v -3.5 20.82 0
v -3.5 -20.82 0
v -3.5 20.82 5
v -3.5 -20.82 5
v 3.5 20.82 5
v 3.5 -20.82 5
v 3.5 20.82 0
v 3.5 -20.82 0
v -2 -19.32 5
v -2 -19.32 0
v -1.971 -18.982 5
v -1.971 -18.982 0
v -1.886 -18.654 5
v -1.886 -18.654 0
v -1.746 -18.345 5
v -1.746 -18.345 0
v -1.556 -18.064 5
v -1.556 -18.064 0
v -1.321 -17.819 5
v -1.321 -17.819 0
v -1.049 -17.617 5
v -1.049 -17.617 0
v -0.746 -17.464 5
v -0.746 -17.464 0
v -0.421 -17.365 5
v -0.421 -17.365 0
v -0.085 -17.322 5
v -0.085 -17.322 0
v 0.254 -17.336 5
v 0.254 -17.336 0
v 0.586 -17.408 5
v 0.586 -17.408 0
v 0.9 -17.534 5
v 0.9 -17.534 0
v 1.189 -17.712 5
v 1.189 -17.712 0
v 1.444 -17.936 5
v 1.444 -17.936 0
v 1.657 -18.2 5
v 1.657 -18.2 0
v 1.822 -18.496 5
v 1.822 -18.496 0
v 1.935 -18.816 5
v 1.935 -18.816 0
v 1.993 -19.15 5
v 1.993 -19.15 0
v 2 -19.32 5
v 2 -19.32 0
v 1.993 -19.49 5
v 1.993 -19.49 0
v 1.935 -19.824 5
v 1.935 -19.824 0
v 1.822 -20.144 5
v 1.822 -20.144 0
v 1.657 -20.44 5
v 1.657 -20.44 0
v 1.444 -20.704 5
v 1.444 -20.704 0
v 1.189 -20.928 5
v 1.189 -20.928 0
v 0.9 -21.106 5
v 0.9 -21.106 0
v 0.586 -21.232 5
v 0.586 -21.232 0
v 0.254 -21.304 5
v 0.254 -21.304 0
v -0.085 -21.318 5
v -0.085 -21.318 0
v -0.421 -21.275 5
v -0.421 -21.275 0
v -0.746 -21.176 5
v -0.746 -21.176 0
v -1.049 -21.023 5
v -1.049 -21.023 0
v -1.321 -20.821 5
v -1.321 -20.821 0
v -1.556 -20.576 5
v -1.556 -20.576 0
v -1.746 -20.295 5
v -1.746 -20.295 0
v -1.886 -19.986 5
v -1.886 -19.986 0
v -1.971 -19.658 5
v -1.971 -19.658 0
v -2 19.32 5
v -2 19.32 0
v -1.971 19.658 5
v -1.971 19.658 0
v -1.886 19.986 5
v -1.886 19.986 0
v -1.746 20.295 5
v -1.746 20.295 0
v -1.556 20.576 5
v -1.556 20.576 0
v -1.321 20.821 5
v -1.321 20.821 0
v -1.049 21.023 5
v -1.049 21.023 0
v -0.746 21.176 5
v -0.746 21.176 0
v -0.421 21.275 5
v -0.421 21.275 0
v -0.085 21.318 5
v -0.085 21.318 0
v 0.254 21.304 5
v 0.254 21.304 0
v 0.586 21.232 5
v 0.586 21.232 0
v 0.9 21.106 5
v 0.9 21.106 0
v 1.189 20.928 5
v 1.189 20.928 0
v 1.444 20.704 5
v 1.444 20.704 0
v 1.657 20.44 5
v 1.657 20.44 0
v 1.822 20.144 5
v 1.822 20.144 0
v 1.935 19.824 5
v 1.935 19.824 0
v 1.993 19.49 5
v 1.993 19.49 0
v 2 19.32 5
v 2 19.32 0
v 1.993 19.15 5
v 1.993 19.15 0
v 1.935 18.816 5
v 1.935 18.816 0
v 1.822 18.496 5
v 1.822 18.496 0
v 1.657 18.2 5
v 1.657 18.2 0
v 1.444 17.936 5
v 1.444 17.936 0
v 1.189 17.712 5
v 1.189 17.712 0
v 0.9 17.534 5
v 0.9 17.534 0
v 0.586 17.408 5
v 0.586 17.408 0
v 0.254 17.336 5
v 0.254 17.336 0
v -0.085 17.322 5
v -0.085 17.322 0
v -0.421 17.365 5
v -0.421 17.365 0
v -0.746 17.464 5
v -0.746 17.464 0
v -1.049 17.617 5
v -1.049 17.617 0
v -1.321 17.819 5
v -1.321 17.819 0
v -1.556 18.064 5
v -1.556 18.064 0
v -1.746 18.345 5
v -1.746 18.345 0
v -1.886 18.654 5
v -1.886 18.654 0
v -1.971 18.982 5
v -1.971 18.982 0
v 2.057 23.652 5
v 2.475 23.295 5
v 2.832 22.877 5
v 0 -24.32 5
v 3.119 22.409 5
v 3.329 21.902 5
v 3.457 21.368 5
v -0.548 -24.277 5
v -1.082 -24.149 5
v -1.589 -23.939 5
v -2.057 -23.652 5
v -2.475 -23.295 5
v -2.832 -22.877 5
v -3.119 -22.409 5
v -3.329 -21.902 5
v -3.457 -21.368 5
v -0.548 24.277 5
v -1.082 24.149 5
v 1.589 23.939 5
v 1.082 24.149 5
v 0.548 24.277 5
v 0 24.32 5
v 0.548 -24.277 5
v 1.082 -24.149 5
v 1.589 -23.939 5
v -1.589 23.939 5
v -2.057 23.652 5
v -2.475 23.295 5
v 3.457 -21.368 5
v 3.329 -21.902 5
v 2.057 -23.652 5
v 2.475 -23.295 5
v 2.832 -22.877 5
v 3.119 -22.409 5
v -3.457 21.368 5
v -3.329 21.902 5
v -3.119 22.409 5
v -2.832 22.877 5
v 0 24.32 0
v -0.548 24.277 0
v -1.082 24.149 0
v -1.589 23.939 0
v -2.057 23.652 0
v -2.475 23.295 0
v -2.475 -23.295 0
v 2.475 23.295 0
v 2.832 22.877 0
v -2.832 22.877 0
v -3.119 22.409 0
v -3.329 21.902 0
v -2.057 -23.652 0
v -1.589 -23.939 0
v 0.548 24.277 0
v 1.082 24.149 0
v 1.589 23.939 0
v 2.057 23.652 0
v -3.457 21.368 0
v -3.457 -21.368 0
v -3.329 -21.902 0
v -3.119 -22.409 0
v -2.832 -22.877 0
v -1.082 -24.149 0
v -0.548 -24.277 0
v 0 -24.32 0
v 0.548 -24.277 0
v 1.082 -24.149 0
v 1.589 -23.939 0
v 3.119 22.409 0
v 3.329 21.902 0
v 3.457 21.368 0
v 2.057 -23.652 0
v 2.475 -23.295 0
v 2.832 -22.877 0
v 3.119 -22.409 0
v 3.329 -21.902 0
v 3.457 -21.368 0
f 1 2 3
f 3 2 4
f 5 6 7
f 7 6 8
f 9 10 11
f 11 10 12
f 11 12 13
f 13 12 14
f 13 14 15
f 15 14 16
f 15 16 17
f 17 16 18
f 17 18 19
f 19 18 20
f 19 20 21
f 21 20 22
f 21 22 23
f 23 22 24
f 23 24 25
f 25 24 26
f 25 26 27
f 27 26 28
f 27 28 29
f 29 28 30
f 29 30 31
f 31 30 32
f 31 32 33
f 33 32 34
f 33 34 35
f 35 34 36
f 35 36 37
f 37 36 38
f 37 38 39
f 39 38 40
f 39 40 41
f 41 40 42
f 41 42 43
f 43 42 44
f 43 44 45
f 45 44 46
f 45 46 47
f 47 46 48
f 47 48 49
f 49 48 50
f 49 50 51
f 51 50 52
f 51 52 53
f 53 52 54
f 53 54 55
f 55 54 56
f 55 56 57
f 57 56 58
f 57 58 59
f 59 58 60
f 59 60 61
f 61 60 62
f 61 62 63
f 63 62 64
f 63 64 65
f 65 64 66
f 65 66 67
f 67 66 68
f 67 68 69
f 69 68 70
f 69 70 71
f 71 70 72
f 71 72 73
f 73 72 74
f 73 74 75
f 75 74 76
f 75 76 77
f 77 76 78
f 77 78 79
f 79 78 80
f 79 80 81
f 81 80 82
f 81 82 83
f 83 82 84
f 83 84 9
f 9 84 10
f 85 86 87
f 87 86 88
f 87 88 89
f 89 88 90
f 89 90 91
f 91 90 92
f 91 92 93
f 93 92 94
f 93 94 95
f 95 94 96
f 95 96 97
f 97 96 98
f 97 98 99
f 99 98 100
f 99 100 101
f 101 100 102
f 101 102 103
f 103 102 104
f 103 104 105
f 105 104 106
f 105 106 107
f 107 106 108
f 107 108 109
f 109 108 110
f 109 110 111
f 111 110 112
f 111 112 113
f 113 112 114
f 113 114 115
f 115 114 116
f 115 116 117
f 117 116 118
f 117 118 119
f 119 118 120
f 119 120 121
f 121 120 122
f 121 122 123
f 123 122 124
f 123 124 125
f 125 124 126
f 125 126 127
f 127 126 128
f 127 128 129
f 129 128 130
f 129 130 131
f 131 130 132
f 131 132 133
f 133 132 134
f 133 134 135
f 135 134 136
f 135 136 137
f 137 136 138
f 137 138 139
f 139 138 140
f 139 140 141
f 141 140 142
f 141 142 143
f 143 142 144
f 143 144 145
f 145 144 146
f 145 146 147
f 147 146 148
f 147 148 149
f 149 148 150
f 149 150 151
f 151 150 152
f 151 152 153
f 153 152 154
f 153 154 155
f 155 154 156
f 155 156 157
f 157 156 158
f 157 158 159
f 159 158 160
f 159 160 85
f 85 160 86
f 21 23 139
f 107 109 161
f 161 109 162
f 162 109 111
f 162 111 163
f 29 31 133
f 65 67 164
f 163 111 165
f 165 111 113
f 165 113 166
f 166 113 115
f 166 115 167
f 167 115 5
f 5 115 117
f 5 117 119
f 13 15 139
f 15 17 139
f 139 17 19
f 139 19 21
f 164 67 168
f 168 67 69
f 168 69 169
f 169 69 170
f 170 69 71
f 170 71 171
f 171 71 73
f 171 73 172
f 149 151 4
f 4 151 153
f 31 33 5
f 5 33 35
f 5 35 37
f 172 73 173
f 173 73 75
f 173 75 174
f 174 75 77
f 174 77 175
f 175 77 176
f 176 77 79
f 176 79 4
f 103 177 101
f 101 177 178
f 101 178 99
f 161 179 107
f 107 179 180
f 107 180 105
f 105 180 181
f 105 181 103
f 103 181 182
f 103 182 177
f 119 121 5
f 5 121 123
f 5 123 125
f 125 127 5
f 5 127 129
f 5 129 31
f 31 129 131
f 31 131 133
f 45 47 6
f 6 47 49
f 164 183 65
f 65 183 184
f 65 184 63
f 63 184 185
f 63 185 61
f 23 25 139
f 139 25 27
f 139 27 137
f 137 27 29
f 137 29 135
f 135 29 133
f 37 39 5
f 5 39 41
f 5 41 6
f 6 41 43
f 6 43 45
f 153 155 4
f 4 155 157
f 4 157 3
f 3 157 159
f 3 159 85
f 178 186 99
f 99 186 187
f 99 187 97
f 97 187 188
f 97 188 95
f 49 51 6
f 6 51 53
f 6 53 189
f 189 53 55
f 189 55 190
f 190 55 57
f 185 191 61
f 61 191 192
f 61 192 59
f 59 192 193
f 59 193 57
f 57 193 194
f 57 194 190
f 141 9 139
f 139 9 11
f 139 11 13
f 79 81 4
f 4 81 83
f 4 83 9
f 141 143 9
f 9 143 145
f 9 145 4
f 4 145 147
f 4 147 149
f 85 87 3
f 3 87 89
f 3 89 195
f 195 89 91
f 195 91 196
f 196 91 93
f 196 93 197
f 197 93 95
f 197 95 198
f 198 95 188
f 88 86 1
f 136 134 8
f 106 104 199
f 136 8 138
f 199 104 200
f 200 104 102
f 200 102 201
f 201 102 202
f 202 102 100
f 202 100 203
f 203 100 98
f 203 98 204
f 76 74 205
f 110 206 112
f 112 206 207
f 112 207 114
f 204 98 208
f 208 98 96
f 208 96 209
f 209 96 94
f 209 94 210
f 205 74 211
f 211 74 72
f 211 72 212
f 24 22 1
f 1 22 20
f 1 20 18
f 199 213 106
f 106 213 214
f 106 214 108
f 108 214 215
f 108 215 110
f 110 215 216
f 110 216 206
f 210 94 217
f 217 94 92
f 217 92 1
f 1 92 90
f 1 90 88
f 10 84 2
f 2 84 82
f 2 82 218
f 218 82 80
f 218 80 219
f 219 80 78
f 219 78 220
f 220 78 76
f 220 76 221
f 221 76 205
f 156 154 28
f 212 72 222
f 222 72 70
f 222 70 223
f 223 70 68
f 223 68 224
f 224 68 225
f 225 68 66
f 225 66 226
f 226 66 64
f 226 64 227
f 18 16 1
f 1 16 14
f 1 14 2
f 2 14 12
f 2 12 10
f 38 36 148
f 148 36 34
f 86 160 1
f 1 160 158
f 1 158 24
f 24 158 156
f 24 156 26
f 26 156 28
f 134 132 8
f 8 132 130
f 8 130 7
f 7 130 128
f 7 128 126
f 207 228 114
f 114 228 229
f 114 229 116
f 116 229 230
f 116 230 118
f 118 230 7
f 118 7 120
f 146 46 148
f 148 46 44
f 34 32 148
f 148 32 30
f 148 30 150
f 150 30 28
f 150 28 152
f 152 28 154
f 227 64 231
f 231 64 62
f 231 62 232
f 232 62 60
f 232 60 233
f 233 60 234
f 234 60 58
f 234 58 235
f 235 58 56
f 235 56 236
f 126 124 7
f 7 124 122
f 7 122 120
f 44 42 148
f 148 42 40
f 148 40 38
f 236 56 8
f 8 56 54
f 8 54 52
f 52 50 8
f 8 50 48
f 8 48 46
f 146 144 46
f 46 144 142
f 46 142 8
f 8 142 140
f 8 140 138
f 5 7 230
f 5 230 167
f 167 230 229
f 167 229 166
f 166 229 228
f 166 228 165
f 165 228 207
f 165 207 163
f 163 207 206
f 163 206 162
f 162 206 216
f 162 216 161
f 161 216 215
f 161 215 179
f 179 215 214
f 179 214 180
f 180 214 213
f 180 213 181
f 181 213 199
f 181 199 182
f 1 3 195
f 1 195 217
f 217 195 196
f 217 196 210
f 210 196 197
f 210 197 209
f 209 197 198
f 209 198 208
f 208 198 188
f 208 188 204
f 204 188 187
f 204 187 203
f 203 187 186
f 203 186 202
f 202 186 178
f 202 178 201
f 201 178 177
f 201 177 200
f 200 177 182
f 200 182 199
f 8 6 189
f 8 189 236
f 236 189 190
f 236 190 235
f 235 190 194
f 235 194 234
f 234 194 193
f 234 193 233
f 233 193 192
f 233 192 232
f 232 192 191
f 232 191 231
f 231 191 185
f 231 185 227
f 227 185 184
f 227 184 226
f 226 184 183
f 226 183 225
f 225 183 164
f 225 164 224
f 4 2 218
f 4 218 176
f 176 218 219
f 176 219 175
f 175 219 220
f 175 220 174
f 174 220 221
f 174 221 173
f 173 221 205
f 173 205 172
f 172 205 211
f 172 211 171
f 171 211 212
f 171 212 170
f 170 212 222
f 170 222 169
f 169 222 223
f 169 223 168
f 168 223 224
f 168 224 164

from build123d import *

# Parameters (mm, degrees)
BOSS_EXTRUDE1_DEPTH = 5
FILLET1_R           = 3.5


with BuildPart() as part:
    # Sketch1 → Boss-Extrude1 (new body)
    with BuildSketch(Plane.XY):
        with BuildLine():
            Line((0, -21.32), (0, -24.32))
            Line((0, -24.32), (3.5, -24.32))
            Line((3.5, -24.32), (3.5, 24.32))
            Line((3.5, 24.32), (0, 24.32))
            Line((0, 24.32), (0, 21.32))
            ThreePointArc((0, 21.32), (1.414213562, 20.734213562), (2, 19.32))
            ThreePointArc((2, 19.32), (1.414213562, 17.905786438), (0, 17.32))
            Line((0, 17.32), (0, -17.32))
            ThreePointArc((0, -17.32), (1.414213562, -17.905786438), (2, -19.32))
            ThreePointArc((2, -19.32), (1.414213562, -20.734213562), (0, -21.32))
        make_face()
        with BuildLine():
            Line((-3.5, -24.32), (0, -24.32))
            Line((0, -24.32), (0, -21.32))
            ThreePointArc((0, -21.32), (-2, -19.32), (0, -17.32))
            Line((0, -17.32), (0, 17.32))
            ThreePointArc((0, 17.32), (-2, 19.32), (0, 21.32))
            Line((0, 21.32), (0, 24.32))
            Line((0, 24.32), (-3.5, 24.32))
            Line((-3.5, 24.32), (-3.5, -24.32))
        make_face()
    extrude(amount=BOSS_EXTRUDE1_DEPTH)

    # Fillet1
    fillet1_edges = [part.edges().sort_by_distance(p)[0] for p in [
        (-3.5, 24.32, 2.5),
        (3.5, 24.32, 2.5),
        (-3.5, -24.32, 2.5),
        (3.5, -24.32, 2.5),
    ]]
    fillet(fillet1_edges, radius=FILLET1_R - 0.0001)  # a hair under: the kernel refuses the full size


solid = part.part
